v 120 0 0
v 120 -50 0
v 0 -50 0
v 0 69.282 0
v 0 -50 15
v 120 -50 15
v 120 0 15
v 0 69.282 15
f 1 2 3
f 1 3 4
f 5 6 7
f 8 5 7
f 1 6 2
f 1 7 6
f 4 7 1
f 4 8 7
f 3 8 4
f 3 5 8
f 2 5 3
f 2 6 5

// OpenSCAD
// OpenSCAD model for a side panel riser for the Behringer Eurorack rack
//
// Author: Tarkan Al-Kazily

// Design notes:
// Trapezoid with adjustable height

/* [Dimensions] */
base = 120.0; // mm
height = 50.0;
width = 15.0;
panel_width = 0.9; // for screwing on
angle = 30.0; // degrees

module main() {
    linear_extrude(width)
    side();
}

module side() {
    union() {
        translate([0, -height, 0])
        square([base, height], false);

        polygon([[0,0], [base, 0], [0, tan(angle) * base]]);
    }
}

module walls() {

    difference() {
        side();

        offset(-panel_width)
        side();
    }

}


main();
